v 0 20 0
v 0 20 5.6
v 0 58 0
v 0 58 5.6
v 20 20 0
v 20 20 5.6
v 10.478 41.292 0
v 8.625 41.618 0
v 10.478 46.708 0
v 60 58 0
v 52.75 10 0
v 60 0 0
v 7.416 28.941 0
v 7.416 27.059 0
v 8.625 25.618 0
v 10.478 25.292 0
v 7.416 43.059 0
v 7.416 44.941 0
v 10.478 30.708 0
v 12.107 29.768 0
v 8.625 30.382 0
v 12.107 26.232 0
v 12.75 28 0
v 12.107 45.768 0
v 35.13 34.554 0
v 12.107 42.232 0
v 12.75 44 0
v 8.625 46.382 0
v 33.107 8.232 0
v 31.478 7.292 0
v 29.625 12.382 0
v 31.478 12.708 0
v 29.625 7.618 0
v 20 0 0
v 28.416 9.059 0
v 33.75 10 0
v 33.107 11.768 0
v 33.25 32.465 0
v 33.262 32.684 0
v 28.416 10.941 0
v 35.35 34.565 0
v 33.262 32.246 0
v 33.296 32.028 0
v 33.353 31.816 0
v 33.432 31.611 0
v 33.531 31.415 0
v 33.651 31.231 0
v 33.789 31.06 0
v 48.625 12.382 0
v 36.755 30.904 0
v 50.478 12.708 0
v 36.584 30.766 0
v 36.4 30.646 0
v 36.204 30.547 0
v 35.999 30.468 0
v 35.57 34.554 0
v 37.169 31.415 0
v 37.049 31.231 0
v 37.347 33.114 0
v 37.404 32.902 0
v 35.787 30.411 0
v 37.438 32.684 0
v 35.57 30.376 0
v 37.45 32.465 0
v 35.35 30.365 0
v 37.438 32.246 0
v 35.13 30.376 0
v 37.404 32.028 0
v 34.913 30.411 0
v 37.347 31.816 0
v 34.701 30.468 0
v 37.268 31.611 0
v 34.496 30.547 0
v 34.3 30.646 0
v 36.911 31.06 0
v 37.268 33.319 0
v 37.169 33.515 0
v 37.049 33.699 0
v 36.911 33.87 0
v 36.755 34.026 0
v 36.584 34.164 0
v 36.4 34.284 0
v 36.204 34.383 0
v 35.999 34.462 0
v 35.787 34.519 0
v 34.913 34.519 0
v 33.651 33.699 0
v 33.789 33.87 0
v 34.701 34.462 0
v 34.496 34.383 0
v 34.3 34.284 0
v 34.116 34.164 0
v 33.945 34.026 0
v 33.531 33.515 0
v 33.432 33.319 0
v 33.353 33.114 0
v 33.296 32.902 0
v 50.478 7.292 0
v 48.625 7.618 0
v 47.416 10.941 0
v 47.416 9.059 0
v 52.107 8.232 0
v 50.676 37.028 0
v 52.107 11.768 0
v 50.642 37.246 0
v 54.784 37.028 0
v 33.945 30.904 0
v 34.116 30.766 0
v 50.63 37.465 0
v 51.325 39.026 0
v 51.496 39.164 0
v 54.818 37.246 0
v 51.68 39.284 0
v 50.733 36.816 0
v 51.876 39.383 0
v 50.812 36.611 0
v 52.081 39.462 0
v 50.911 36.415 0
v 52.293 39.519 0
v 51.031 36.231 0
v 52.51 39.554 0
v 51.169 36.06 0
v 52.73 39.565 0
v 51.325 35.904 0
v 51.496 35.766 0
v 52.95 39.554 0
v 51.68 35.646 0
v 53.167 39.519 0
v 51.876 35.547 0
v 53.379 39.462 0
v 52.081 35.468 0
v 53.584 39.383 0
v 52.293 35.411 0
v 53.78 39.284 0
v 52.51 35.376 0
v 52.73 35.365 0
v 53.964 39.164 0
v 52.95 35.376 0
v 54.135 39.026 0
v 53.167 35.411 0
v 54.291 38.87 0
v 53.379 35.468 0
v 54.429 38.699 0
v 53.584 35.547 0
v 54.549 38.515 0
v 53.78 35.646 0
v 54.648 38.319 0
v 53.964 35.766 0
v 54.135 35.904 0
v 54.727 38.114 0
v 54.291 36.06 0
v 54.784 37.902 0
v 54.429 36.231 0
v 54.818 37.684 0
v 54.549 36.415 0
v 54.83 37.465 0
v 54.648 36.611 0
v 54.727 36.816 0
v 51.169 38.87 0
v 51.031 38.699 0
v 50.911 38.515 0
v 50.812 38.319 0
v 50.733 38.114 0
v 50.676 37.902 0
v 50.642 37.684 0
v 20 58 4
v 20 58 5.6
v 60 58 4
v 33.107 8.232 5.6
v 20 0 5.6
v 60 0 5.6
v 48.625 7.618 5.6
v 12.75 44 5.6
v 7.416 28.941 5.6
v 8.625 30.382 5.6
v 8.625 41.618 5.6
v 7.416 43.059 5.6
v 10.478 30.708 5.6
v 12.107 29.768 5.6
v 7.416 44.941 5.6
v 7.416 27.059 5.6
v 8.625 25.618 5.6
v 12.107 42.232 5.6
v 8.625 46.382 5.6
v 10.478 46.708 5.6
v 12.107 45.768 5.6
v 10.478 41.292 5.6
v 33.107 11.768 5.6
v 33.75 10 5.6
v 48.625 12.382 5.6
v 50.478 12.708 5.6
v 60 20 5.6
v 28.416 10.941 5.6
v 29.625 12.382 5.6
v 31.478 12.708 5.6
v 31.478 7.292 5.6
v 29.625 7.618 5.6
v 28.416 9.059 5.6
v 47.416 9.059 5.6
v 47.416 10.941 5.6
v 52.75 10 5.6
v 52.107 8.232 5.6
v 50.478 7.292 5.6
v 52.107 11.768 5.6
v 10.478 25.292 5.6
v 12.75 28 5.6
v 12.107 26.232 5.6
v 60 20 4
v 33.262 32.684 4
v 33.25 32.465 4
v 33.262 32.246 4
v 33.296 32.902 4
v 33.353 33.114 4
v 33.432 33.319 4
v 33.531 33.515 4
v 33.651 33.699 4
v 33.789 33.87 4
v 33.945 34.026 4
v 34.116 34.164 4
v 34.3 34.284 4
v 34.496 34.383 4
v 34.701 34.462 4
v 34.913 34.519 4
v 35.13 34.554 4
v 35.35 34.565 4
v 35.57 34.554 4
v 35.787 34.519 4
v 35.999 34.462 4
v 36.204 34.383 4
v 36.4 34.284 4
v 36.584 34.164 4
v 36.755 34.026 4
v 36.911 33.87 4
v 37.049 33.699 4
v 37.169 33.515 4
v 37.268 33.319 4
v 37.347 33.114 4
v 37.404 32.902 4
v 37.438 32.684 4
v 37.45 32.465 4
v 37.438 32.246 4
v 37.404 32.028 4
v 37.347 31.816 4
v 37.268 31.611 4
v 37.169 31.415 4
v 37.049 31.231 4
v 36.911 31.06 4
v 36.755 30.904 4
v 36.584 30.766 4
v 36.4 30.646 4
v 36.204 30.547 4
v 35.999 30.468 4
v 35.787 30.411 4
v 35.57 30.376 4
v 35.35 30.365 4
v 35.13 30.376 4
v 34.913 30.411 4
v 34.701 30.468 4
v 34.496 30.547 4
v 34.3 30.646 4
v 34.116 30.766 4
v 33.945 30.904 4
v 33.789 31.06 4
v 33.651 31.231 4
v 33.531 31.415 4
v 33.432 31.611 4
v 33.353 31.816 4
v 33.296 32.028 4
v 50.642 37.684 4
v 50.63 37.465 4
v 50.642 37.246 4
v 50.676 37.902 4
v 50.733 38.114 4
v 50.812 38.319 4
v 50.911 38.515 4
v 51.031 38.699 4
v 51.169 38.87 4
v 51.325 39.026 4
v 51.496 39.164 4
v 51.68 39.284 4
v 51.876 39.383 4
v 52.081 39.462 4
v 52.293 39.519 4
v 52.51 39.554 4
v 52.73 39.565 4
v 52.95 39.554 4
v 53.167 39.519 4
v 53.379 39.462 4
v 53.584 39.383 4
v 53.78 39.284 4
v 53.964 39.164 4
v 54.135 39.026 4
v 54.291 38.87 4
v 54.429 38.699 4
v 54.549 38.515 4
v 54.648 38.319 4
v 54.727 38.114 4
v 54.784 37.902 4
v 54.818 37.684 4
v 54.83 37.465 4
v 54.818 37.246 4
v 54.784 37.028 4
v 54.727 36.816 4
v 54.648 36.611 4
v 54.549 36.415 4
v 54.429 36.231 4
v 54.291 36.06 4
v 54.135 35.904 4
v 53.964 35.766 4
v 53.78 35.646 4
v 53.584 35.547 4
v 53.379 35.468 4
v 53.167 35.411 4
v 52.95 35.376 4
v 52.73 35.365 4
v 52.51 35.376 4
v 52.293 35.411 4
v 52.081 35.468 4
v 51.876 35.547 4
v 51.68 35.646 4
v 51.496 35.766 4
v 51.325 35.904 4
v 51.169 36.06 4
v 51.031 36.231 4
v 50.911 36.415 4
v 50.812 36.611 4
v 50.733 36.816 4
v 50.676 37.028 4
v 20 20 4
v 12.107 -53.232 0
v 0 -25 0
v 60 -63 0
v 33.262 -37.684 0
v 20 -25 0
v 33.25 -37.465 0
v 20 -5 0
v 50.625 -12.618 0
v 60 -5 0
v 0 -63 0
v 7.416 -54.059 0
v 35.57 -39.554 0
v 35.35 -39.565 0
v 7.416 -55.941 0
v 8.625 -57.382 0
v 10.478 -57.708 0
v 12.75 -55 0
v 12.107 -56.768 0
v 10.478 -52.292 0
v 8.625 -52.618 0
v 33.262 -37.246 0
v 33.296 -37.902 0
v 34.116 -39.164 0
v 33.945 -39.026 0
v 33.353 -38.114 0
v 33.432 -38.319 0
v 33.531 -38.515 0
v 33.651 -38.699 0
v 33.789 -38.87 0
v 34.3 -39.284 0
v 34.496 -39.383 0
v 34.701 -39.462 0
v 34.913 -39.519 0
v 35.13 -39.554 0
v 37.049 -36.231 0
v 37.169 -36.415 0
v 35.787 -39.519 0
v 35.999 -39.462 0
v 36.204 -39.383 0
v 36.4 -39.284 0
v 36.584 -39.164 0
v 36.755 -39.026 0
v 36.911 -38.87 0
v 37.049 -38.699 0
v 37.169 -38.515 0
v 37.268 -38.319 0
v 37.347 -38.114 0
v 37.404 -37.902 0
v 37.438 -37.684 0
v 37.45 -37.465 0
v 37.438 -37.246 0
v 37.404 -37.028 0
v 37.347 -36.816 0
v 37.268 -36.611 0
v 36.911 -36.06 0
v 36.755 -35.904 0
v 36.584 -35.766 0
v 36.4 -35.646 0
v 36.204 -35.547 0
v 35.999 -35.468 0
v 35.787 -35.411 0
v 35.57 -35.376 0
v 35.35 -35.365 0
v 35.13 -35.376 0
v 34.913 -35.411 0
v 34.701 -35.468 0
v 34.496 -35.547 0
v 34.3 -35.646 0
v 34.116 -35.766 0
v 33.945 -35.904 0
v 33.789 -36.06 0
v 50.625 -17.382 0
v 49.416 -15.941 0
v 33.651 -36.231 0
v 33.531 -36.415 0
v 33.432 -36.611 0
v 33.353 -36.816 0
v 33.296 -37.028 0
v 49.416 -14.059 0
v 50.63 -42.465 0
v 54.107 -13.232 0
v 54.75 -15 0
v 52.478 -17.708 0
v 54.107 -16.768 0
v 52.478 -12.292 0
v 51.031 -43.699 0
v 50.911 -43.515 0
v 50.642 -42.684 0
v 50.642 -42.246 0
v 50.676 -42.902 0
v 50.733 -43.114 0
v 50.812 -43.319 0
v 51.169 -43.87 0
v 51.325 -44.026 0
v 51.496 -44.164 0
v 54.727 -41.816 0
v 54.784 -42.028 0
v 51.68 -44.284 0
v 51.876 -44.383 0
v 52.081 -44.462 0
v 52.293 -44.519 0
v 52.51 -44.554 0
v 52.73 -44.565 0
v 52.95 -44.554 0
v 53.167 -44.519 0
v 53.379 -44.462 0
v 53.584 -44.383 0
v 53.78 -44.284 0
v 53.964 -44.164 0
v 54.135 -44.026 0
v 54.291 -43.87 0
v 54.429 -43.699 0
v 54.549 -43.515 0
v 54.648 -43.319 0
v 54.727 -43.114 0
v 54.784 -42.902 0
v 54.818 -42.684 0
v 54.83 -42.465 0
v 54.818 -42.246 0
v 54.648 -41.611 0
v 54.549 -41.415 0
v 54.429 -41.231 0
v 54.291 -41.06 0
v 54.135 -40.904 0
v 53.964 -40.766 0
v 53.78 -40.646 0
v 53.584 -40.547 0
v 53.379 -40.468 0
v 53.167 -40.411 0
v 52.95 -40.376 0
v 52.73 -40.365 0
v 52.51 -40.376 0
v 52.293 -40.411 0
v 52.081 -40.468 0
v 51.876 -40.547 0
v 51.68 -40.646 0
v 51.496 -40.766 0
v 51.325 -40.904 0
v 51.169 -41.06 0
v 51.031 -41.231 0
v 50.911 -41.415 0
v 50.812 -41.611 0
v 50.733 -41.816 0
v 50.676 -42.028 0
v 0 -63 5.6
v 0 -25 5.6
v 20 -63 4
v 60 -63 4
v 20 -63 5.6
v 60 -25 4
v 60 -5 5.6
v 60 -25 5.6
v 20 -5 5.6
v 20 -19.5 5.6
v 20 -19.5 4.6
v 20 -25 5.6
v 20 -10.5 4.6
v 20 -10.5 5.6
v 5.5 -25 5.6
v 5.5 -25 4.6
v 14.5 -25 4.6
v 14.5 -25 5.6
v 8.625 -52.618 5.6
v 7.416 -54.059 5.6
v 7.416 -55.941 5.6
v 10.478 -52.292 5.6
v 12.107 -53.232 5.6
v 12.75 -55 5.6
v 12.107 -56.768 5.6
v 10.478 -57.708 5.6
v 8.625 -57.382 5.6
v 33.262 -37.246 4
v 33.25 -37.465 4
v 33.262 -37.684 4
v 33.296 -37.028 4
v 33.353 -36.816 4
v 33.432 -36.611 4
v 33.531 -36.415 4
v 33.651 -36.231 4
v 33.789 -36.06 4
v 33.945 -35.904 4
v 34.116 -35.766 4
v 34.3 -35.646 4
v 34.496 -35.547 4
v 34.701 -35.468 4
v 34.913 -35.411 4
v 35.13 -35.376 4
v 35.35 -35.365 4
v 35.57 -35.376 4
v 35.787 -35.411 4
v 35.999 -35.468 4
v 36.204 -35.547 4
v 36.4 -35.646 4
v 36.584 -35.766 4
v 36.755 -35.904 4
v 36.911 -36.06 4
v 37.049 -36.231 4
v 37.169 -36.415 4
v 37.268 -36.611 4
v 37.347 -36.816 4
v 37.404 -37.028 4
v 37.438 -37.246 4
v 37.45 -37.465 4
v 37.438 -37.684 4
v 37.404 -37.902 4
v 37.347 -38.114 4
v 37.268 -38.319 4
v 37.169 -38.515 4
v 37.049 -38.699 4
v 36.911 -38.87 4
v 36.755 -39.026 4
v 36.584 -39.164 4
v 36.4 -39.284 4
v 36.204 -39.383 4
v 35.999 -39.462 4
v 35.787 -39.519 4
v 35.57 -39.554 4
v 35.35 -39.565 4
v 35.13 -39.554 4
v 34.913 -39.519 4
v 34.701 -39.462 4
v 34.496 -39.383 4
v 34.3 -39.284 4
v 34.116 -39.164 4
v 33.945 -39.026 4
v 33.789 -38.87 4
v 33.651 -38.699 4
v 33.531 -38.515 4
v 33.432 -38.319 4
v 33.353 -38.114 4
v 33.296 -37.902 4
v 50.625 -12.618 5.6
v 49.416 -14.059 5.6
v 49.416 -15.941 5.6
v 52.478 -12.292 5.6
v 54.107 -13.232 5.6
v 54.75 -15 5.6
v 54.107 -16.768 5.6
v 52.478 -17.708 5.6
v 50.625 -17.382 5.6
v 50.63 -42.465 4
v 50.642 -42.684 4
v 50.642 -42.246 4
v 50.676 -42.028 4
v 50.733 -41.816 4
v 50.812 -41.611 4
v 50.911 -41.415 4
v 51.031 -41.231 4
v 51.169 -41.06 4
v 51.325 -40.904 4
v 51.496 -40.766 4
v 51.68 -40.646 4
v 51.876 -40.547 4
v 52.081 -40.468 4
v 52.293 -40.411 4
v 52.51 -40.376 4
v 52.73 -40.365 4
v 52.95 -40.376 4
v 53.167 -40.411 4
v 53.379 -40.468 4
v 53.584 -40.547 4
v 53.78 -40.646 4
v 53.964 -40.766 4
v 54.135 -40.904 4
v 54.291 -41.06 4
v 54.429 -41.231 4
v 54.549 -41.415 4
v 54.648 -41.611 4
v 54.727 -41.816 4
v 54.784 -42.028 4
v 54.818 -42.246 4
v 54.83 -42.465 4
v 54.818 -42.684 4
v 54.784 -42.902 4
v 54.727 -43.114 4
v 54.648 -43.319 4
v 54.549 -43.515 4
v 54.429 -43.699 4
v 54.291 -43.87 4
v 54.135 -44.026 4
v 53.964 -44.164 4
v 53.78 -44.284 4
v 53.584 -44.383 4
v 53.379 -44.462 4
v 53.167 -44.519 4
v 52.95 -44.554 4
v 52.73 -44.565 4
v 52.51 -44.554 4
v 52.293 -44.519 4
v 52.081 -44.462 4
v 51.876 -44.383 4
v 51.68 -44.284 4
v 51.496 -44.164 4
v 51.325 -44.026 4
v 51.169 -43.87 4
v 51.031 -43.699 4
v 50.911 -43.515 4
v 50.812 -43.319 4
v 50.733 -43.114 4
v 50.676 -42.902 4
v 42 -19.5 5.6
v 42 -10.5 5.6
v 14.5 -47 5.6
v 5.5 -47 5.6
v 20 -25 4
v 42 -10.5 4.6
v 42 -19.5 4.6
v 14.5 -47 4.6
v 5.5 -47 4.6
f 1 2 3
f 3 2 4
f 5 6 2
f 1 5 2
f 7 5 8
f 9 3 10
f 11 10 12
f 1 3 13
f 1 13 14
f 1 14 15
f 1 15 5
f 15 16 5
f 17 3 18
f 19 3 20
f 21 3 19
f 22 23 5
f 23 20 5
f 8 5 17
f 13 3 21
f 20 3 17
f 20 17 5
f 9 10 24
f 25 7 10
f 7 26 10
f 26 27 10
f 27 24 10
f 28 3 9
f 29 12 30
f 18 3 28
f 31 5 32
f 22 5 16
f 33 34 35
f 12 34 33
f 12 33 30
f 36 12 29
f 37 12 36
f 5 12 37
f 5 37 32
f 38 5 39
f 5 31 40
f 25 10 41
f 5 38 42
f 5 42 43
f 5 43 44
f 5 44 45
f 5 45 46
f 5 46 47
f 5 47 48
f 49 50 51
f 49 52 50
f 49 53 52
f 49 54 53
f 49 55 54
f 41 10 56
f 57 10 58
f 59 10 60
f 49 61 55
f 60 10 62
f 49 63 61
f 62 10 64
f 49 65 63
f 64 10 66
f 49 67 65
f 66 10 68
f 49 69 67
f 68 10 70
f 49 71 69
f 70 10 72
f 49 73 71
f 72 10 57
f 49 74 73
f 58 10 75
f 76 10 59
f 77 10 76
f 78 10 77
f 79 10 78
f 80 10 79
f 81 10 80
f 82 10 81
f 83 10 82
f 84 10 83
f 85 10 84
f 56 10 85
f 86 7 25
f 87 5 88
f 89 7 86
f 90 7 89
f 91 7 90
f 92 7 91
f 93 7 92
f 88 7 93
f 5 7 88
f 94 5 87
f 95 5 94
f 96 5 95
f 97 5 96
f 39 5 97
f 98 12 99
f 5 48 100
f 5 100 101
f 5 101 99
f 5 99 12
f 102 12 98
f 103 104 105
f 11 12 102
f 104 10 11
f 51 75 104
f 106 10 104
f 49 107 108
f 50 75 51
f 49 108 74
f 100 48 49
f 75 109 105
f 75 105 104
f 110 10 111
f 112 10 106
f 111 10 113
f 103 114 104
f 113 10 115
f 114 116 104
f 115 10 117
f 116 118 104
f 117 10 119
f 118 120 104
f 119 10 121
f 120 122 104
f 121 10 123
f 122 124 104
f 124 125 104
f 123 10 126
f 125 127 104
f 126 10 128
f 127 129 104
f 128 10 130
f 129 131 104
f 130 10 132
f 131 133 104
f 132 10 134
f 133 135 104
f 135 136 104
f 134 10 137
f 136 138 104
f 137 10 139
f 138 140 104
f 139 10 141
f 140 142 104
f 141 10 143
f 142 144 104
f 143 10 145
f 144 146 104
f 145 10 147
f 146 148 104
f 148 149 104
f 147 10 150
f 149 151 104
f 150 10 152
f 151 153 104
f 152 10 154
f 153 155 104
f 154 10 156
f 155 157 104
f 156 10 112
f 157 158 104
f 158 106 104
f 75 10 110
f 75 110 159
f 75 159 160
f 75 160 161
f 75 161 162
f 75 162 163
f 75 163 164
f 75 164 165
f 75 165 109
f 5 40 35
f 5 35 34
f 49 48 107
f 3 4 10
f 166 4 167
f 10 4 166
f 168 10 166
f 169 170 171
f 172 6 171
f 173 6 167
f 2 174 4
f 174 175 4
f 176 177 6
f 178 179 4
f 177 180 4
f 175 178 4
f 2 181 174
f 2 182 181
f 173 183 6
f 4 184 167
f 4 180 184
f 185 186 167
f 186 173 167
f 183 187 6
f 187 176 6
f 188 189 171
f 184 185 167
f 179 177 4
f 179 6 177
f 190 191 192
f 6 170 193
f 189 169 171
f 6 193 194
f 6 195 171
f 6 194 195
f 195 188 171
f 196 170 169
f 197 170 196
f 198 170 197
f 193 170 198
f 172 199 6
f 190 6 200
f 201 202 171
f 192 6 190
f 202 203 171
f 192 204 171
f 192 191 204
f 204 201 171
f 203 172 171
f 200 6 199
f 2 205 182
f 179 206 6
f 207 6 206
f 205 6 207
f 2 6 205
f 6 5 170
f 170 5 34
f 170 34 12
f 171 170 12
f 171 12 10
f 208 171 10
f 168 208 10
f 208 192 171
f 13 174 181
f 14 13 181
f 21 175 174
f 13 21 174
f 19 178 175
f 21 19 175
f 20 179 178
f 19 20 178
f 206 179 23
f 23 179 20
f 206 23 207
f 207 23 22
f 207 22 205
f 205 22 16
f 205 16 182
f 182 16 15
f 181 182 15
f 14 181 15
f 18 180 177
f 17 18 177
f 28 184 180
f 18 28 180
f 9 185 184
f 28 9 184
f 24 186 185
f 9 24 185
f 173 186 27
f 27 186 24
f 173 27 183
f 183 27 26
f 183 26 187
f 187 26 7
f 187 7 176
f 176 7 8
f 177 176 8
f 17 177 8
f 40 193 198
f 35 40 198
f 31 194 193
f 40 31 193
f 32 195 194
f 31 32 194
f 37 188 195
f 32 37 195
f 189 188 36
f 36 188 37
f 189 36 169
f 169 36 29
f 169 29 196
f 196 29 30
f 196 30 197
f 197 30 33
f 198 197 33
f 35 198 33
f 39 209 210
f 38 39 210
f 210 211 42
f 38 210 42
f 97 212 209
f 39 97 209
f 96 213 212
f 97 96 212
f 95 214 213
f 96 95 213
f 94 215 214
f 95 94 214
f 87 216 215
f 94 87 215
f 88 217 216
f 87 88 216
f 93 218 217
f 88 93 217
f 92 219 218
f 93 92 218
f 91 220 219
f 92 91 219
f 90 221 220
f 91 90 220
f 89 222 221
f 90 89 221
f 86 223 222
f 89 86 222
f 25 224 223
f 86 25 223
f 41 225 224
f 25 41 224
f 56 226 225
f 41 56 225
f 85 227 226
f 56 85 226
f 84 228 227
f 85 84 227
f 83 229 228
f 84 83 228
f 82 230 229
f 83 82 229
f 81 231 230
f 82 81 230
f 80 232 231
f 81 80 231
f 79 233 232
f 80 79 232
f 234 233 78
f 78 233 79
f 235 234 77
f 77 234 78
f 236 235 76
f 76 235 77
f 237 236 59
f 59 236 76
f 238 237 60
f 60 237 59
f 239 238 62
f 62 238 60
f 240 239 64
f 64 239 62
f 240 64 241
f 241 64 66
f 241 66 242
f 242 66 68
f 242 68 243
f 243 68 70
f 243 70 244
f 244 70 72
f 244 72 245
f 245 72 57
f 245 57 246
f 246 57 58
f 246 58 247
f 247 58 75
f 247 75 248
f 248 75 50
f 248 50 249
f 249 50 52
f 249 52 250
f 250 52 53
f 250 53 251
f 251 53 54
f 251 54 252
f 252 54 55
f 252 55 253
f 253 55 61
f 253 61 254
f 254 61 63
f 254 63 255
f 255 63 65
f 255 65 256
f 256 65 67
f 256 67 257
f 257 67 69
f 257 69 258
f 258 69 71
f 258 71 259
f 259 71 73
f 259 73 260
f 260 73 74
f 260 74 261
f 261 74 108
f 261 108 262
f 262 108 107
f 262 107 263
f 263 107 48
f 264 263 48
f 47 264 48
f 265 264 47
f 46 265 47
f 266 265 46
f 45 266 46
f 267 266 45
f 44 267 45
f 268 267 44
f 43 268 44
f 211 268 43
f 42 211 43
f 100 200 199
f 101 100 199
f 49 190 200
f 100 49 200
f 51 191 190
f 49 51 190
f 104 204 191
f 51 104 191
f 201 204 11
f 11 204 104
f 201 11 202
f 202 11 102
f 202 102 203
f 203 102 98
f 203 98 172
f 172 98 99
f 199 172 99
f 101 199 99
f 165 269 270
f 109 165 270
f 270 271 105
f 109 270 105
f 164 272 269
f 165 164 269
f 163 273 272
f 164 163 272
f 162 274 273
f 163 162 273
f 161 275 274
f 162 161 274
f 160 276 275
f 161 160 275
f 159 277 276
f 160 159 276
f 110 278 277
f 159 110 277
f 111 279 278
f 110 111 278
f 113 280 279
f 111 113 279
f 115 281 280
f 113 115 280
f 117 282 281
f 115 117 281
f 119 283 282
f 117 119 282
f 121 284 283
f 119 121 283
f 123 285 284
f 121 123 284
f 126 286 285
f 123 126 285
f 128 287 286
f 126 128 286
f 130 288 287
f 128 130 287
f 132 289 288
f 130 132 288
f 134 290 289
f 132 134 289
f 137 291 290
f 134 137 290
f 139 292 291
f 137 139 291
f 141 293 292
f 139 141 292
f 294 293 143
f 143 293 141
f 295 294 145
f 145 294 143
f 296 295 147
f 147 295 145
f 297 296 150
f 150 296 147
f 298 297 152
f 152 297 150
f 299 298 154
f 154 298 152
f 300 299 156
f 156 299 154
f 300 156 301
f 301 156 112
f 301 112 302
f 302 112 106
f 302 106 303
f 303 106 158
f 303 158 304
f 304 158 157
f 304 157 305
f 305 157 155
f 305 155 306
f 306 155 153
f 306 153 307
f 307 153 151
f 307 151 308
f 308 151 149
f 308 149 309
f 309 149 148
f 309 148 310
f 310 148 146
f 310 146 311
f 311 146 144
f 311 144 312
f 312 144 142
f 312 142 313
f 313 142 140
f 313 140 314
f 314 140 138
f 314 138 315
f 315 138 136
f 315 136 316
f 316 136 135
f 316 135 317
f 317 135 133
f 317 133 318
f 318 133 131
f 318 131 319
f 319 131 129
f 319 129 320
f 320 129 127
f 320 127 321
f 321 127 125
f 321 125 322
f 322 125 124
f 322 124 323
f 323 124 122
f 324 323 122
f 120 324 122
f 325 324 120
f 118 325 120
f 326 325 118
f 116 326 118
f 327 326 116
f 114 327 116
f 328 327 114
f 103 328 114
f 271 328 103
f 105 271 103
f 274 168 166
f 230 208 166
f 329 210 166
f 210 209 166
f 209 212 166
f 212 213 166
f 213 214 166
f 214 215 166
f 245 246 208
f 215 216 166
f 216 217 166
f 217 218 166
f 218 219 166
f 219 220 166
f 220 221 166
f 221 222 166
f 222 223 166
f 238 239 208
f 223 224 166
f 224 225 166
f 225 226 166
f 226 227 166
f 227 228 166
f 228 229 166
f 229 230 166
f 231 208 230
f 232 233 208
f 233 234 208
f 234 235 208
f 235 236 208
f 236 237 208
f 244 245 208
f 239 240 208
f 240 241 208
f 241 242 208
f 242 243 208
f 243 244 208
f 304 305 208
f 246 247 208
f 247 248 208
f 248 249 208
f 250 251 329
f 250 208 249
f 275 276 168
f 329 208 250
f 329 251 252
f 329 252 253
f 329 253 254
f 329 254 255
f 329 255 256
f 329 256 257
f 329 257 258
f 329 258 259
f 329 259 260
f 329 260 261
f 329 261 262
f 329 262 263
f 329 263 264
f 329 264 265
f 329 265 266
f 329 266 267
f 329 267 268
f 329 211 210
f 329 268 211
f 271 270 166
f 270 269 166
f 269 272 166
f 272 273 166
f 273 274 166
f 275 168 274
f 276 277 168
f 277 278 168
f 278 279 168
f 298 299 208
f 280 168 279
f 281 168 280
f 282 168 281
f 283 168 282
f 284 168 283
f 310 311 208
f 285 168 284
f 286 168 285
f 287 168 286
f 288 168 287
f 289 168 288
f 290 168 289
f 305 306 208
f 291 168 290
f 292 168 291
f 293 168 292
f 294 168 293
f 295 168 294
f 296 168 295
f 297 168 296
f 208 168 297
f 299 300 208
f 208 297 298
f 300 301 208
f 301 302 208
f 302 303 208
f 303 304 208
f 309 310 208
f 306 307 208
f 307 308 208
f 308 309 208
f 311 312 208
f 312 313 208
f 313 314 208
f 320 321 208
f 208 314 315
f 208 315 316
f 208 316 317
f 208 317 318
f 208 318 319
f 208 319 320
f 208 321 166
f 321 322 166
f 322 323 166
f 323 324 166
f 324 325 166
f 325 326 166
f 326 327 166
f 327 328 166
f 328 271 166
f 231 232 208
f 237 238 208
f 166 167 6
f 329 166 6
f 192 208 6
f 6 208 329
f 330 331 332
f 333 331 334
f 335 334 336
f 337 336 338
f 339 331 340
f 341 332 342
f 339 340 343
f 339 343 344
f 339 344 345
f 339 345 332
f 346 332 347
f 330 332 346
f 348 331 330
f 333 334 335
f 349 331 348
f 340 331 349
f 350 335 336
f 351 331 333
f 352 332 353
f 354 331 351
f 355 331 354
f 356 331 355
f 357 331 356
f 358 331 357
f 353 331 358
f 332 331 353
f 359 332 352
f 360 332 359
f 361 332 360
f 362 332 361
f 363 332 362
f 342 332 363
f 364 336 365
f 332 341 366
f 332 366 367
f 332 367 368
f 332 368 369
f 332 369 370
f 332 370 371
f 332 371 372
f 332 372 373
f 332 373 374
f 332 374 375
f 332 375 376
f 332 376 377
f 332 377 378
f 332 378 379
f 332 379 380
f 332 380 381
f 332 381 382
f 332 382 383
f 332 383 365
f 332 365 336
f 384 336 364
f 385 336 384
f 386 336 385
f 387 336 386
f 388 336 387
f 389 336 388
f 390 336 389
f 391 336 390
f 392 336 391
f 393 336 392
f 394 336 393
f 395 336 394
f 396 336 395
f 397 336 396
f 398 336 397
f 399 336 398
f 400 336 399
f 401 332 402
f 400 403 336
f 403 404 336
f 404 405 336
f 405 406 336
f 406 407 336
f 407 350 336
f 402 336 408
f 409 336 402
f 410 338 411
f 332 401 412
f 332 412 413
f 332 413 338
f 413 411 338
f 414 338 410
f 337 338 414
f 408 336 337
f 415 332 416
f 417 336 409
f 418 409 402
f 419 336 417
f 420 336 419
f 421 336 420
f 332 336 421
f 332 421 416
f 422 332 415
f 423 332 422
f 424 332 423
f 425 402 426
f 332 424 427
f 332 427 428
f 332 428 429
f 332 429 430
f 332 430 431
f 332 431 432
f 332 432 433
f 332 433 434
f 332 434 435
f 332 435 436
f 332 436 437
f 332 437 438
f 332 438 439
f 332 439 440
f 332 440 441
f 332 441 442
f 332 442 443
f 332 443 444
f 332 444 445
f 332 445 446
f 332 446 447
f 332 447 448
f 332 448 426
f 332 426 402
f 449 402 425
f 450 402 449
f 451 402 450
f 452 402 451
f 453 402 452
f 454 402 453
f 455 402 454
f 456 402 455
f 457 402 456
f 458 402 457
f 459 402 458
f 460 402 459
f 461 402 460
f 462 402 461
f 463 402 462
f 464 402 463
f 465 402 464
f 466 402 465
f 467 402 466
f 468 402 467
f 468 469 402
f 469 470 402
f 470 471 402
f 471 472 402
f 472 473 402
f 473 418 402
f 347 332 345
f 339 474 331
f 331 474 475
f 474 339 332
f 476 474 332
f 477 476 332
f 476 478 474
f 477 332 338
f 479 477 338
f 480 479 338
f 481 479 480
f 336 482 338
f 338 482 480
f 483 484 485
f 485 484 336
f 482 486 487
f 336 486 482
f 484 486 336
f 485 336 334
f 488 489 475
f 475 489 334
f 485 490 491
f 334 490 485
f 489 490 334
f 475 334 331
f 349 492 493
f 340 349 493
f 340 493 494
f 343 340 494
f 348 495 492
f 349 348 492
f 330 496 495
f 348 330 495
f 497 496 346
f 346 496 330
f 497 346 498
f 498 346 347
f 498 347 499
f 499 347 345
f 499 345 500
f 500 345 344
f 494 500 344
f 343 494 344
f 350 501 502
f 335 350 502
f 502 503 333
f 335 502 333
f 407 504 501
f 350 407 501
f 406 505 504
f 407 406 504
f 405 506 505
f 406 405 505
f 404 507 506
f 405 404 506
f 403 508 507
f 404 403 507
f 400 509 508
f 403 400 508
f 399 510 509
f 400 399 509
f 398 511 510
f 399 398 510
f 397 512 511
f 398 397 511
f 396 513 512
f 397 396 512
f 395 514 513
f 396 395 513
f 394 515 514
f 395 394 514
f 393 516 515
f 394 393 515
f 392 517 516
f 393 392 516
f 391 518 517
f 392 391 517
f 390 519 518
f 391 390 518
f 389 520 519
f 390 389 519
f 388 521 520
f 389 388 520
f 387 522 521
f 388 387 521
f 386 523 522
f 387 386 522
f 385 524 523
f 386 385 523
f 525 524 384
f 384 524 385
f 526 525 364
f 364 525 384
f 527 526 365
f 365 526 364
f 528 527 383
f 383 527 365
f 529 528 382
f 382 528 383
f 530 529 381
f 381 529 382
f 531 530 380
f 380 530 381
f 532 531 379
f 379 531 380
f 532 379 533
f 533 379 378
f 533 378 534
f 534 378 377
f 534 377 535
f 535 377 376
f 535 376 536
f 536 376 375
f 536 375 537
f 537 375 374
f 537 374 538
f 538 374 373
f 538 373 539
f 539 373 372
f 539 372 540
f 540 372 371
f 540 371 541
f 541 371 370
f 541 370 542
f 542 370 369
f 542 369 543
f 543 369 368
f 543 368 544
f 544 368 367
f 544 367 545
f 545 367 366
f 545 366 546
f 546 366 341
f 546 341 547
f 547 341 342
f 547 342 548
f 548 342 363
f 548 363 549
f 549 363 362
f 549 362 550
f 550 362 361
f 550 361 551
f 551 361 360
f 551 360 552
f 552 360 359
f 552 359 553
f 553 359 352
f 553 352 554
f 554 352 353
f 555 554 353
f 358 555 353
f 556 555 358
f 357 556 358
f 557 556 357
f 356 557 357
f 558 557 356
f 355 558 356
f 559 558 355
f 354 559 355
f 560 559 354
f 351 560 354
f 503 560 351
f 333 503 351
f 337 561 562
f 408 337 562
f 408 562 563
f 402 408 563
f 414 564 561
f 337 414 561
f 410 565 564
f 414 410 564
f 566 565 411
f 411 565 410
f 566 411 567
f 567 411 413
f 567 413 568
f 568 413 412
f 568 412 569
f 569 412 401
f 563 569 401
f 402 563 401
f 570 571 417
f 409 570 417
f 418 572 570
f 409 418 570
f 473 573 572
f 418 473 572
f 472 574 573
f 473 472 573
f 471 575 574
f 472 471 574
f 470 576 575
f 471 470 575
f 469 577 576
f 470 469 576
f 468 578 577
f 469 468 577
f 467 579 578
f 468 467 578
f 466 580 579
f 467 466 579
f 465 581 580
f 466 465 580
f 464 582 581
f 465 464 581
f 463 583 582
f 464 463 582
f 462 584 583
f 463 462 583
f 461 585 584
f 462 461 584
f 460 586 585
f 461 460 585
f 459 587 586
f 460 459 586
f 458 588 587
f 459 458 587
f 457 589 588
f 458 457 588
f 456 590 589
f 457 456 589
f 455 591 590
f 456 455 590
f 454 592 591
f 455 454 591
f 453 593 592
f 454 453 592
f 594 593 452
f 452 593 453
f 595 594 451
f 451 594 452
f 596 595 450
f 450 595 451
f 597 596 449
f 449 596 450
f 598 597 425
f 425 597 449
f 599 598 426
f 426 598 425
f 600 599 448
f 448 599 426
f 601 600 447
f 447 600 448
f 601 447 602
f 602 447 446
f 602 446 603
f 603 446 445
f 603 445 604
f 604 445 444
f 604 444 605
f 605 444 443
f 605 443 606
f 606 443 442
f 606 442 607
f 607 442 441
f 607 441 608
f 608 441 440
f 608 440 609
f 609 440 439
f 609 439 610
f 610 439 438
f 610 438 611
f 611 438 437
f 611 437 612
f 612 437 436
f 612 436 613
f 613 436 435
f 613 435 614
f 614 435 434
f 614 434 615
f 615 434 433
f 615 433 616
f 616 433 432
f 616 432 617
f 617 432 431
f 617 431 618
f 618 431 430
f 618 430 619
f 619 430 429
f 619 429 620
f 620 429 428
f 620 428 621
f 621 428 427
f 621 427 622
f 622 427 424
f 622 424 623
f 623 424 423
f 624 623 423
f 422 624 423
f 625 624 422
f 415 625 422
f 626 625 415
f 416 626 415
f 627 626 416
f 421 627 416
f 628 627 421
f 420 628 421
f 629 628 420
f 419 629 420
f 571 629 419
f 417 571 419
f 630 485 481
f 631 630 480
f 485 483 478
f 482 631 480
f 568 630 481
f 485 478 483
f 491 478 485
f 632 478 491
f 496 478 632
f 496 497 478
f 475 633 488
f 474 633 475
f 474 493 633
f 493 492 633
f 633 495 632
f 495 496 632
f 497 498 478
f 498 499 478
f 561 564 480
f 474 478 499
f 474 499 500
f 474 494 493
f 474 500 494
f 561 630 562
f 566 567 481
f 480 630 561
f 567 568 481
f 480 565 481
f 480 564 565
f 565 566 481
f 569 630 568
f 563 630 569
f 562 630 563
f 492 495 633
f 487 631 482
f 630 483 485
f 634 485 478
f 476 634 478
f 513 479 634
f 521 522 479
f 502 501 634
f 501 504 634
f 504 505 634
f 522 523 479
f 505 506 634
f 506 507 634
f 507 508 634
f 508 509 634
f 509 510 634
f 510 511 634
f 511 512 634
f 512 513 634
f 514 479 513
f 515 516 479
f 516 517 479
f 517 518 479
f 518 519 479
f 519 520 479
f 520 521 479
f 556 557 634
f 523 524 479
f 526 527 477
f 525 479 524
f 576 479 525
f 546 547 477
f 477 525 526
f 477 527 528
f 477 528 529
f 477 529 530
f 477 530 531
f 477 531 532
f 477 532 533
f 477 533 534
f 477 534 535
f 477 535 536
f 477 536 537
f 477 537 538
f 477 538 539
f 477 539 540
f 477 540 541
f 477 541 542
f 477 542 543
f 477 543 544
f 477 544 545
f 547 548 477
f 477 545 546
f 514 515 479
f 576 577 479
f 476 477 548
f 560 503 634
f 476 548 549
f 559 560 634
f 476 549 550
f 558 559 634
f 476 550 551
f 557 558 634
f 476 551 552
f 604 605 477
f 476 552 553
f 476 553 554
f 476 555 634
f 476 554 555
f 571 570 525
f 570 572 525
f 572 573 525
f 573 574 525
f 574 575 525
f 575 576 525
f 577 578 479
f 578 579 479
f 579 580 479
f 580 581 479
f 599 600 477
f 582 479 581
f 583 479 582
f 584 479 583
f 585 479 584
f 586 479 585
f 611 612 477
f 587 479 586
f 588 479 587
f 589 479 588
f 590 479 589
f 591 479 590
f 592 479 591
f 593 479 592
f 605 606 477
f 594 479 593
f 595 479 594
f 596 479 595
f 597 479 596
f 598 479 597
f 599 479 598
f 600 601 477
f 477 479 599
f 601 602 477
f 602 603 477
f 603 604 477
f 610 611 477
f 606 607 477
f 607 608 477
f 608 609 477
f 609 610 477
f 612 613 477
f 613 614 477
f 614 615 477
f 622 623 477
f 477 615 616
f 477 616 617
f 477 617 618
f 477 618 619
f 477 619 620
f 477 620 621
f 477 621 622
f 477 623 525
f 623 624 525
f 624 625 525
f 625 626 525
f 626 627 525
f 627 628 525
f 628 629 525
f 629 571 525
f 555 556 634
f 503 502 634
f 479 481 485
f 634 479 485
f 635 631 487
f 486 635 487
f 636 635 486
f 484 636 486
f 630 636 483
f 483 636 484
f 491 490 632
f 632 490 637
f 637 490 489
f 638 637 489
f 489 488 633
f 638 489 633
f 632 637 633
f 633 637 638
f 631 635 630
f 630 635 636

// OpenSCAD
// file: library.scad
//rounded cube Functions from: http://www.thingiverse.com/thing:38069


module cube_fillet(size,radius=-1,vertical,top,bottom,center=false,$fn=0){
    if (center) {
        cube_fillet_inside(size, radius, vertical, top, bottom, $fn=$fn);
    } else {
        translate([size[0]/2, size[1]/2, size[2]/2])
            cube_fillet_inside(size, radius, vertical, top, bottom, $fn=$fn);
    }
}
module fillet(radius, height=100, $fn=60) {  
    //this creates negative of fillet,
    //i.e. thing to be substracted from object
    translate([-radius, -radius, -height/2-0.01])
        difference() {
            cube([radius*2, radius*2, height+0.02]);
            cylinder(r=radius, h=height+0.02, $fn=$fn);
        }
}

module cube_negative_fillet(size,radius=-1,vertical, top,bottom,$fn=0){
    j=[1,0,1,0];

    for (i=[0:3]) {
        if (radius > -1) {
            rotate([0, 0, 90*i])
                translate([size[1-j[i]]/2, size[j[i]]/2, 0])
                    fillet(radius, size[2], $fn=$fn);
        } else {
            rotate([0, 0, 90*i])
                translate([size[1-j[i]]/2, size[j[i]]/2, 0])
                    fillet(vertical[i], size[2], $fn=$fn);

        }
        rotate([90*i, -90, 0])
            translate([size[2]/2, size[j[i]]/2, 0 ])
                fillet(top[i], size[1-j[i]], $fn=$fn);
        rotate([90*(4-i), 90, 0])
            translate([size[2]/2, size[j[i]]/2, 0])
                fillet(bottom[i], size[1-j[i]], $fn=$fn);
    }
}

module cube_fillet_inside(size,radius=-1,vertical,top,bottom,$fn=0){

    if (radius == 0) {
        cube(size, center=true);
    } else {
        difference() {
            cube(size, center=true);
            cube_negative_fillet(size, radius, vertical, top, bottom, $fn=$fn);
        }
    }
}
// file: dimensions.scad
// Dimensions
// Author: sdavi


LM8UU = [8, 15, 24];//rod diameter,outter diameter, length
LM12UU = [12, 21, 30];
LM12LUU = [12, 21, 57];
LM12UUx2 = [LM12UU[0], LM12UU[1], LM12UU[2]*2];

BEARING_624 = [4,13,5]; //inner diameter(hole), outter diameter, thickness (http://reprap.org/wiki/Ball_bearing)
BEARING_2x624 = [4, 13, 10]; // 2 624 bearings together, good size for GT2

BEARING_6300 = [10,35,11]; //inner diameter, outer diameter, thickness

vslot_wheel = [23.89,10.23];	//23.89 & 10.23
vslot_wheel_hole = 5+0.5;
vslot_wheel_eccentric = 7.2+0.5; //hole for eccentric spacer
vslot_wheel_spacer_length = 6.35;


t_nut_length = 15+1; //hole in center 1mm cleanance incase hole isnt actually center




GT2_belt_width = 6;
GT2_belt_pitch = 2;
GT2_belt_thickness = 1.38;
GT2_belt_tooth_height = 0.75;  
GT2_belt_tooth_ratio = 0.5;



GT2_pulley_geared_diameter=12.2;//measured from top of tooth to top of tooth opp side// 12.2 is for the 20 tooth pulley

//from metric (prusa i3)
m4_diameter = 4.6;
m4_nut_diameter = 7.6;
m4_nut_diameter_horizontal = 8.15;

m3_diameter = 3.6;
m3_nut_diameter = 5.3;
m3_nut_diameter_horizontal = 6.8;
m3_washer_diameter = 6.9;
//end i3 variables

m5_diameter = 5.5;

//Hex Head M3x30: Head 5.5mm flat to flat, 2.12mm thick
m3_hex_head_diameter = 5.5*2/sqrt(3) + 0.2;

M4 = m4_diameter;
M3 = m3_diameter;
M5 = m5_diameter;
m4_washer_thickness = 0.8; //flat and penny washers
m4_washer_diameter = 9.6;

nema17_holes = 31;// mm between screws
nema17_width = 42; //width
nema17_height = 48;
// file: configuration.scad
// Configuration
// Author: sdavi


include <dimensions.scad>
use <library.scad>


x_rod_distance = 45;

y_bearing = LM8UU;
x_bearing = LM8UU;
//z_bearing = LM12UUx2;
z_bearing = LM12LUU;
belt_bearing = BEARING_2x624;


end_belt_bearing_distance = 25;// distance between 2 bearings on y-ends
belt_clearance = 9.5; //space for belts
x_belt_clearance = 5; //spacing between x-axis vslot and belt

frame_screw = M5; //m5 screws for v/tslot

// calculated vars


//y bearing block
y_bearing_block_length = 2*y_bearing[2] + M3*2 + 5;
//y_bearing_block_width = y_bearing[1]+5;
y_bearing_block_width = 20; //vslot frame width

y_bearing_block_height = 6+y_bearing[1]/2;

//xy_bearing_distance = y_bearing_block_width/2+belt_clearance+belt_bearing[1]/2; //distance between center of y-bearing to center of x-belt bearing 
xy_bearing_distance = vslot_wheel[1]/2+vslot_wheel_spacer_length+belt_clearance+belt_bearing[1]/2; //distance between center of v_slot to center of x-belt bearing 




//min height for belt bearings
min_beltbearing_height = max(((belt_bearing[2]+m4_washer_thickness*2) * 2), y_bearing_block_height);
// file: lib/y_idler_ends.scad
// y_idler ends 
// Author: sdavi


//Idler Ends BoM
//16x M5x8mm bolt
//4x M4x??m Bolt + nut
//8x M4 washer
//8x F624ZZ bearing

include <../configuration.scad>
include <../dimensions.scad>

//use <y_motor_end.scad>




im_using_hidden_corner_connectors = 1; // if using hidden corner connectors
hcc=[9,22,1]; //to avoid hidden corner connectors;

//add extra lenths if using hidden corner conenctors
extra_l=max(t_nut_length+im_using_hidden_corner_connectors*(hcc[1]), t_nut_length*2); 
extra_w = max(40, im_using_hidden_corner_connectors*(hcc[1])+t_nut_length);

y_block_length = 20+extra_l;//big enough to hold 2 frame screws
y_block_width = 20+extra_w; 
y_block_height = 4;

y_block_total_height = 4+4+min_beltbearing_height;


echo("block length:", y_block_length);
echo("block width:", y_block_width);
echo("block height:", y_block_height);

echo("Total Height:", y_block_height*2+min_beltbearing_height);





//y_idler_ends_print();
//%motor_mount();
//y_motor_end_idler();

//%illustration();
//support();



module y_idler_ends_print(){
	difference(){
		//bottom
		y_motor_end_idler();
		translate([0,0,y_block_total_height-9.9])cube([y_block_width, y_block_length, 10]);
	
	}
	
	translate([0,-5,y_block_total_height])rotate([180,0,0])intersection(){
		y_motor_end_idler();
		translate([0,0,y_block_total_height-9.9])cube([y_block_width, y_block_length, 10]);
	
	}
}













//calculate positions for bearings

inner_bearing_pos = [	nema17_width/2+20+GT2_pulley_geared_diameter/2+(GT2_belt_thickness-GT2_belt_tooth_height)+belt_bearing[2]/2, 
						y_bearing_block_width/2+xy_bearing_distance,
						0];

outer_bearing_pos = [	inner_bearing_pos[0]-belt_bearing[2]-GT2_belt_thickness-6, 
							inner_bearing_pos[1]-5, 
							0 ];







module y_motor_end_idler(){
	difference(){
		cube([y_block_width, y_block_length,y_block_total_height]);

		//remove for frame corner
		translate([-0.1, -0.1, -0.1])cube([20.1, 20.1, y_block_total_height+0.2]);
		//remove frame lengths
		translate([0,-0.1,y_block_total_height/2-20/2]) cube([y_block_width+0.1, 20.2, 20]);
		translate([-0.1,-0.1,y_block_total_height/2-20/2]) cube([20.2, y_block_length+0.2, 20]);
		
		//belt area

		translate([20,20,y_block_total_height/2-min_beltbearing_height/2]) 
			cube([y_block_width-20+0.1, y_block_length-20+0.1, min_beltbearing_height]);


		bearing_holes();

		//frame screws

		if(im_using_hidden_corner_connectors==0){
			translate([10,20+t_nut_length/2,-0.1]) 
				cylinder(d=frame_screw, h=y_block_total_height+0.2);
			translate([10,20+t_nut_length+t_nut_length/2,-0.1]) 
				cylinder(d=frame_screw, h=y_block_total_height+0.2);
		
			translate([20+t_nut_length/2+3,10,-0.1]) 
				cylinder(d=frame_screw, h=y_block_total_height+0.2);
			translate([20+t_nut_length+t_nut_length/2+6,10,-0.1]) 
				cylinder(d=frame_screw, h=y_block_total_height+0.2);

		} else {
			//hidden corner connectors get in the way, avoid them
//hcc=[9,22,1]; //to avoid hidden connectors;

			//top, has hidden conenctors
			translate([10,y_block_length-t_nut_length/2,y_block_total_height/2]) 
				cylinder(d=frame_screw, h=y_block_total_height/2+0.1);
			translate([y_block_width-t_nut_length/2,10,y_block_total_height/2]) 
				cylinder(d=frame_screw, h=y_block_total_height/2+0.1);

			//make cutout for hidden connector so sits flush
			translate([20-0.1, 20/2-hcc[0]/2, y_block_total_height/2+20/2-0.1])
				cube([hcc[1]+0.1, hcc[0], hcc[2]+0.1]);
			translate([20/2-hcc[0]/2, 20-0.1, y_block_total_height/2+20/2-0.1])
				cube([hcc[0], hcc[1]+0.1, hcc[2]+0.1]);


			//bottom
			translate([10,20+t_nut_length/2,-0.1]) 
				cylinder(d=frame_screw, h=y_block_total_height/2);
			translate([10,20+t_nut_length+t_nut_length/2,-0.1]) 
				cylinder(d=frame_screw, h=y_block_total_height/2);
		
			translate([20+t_nut_length/2+3,10,-0.1]) 
				cylinder(d=frame_screw, h=y_block_total_height/2);
			translate([20+t_nut_length+t_nut_length/2+6,10,-0.1]) 
				cylinder(d=frame_screw, h=y_block_total_height/2);

			
		}



	}
}


module bearing_holes(){
	//belt bearing holes

	//bearing inner
	translate(inner_bearing_pos)  translate([0,0,-0.1])cylinder(d=belt_bearing[0]+0.2, h=y_block_total_height+0.2, $fn=60);
	//bearing outer
	translate(outer_bearing_pos) translate([0,0,-0.1])  cylinder(d=belt_bearing[0]+0.2, h=y_block_total_height+0.2, $fn=60);
	//bearing outer padding space
	translate(outer_bearing_pos) translate([0,0,y_block_height]) cylinder(d=belt_bearing[1]*1.8, h=min_beltbearing_height, $fn=30);

	
	

}

module illustration(){
		visualise_high = 0; //high (1) or low bearing (0)

//frames
			%color("grey")translate([0,0,-20]) 
				cube([20,20,70]);
			%color("grey")%translate([0,0,y_block_total_height/2-10]) cube([100, 20,20]);
			%color("grey")%translate([0,0,y_block_total_height/2-10]) cube([20,150, 20]);

//bearings
	
		%color("green")translate(inner_bearing_pos)
			translate([0,0,y_block_total_height/2-10+m4_washer_thickness]){ 
				if( visualise_high == 0){
					cylinder(d=belt_bearing[1], h=belt_bearing[2], $fn=60); //bottom
				} else {

					translate([0,0,belt_bearing[2]+m4_washer_thickness*2])
						cylinder(d=belt_bearing[1], h=belt_bearing[2], $fn=60); //top
				}
			}

		%color("green")translate(outer_bearing_pos)
			translate([0,0,y_block_total_height/2-10+m4_washer_thickness]) {
					
				if(visualise_high == 0){
					cylinder(d=belt_bearing[1], h=belt_bearing[2], $fn=60);//bottom	

				} else {
					translate([0,0,belt_bearing[2]+m4_washer_thickness*2])
						cylinder(d=belt_bearing[1], h=belt_bearing[2], $fn=60); //top				
				}

			}

//nema17
		%color("yellow") rotate([0,180,0])
			translate([	-nema17_width/2-20,
							nema17_width/2+20+50,
							-(min_beltbearing_height+y_block_height*2)-46]) 
			nema17();	
			
		%translate([nema17_width/2+20,nema17_width/2+20+50,y_block_height+m4_washer_thickness+belt_bearing[2]/2 + visualise_high*(belt_bearing[2]+m4_washer_thickness*2)])
			pulley(bottom=visualise_high);

//belts
		%color("DimGray") translate(inner_bearing_pos) 
			translate([-belt_bearing[2]/2-GT2_belt_thickness,0,y_block_height+m4_washer_thickness+belt_bearing[2]/2-GT2_belt_width/2 +visualise_high*(belt_bearing[2]+m4_washer_thickness*2)]) cube([GT2_belt_thickness, 50, GT2_belt_width]);
		

	//rod holder 
	//%color("red")translate([20,0,y_block_height*2+min_beltbearing_height+frame_spacer_height])mirror([0,0,1])y_rod_holder();

}



//modle of nema17 for illustration
module nema17(){


	union(){
		translate([-nema17_width/2, -nema17_width/2, 0])
			cube_fillet([nema17_width, nema17_width, nema17_height], vertical=[3,3,3,3]);
		translate([0,0,48]) {
			cylinder(d=22, h=2, $fn=60); //rasied center bit
			cylinder(d=5, h=22+2, $fn=60); //shaft
		}

		

	
	}
	


}


//pulley bottom = 1 or 0
module pulley(bottom = 1){
		//pulley GT2 20 tooth
		//pulley height = 16, diameter = 16, bottom=1mm, top=7+0.5;


		rotate([0,bottom*180,0])translate([0,0,-1-(16-7.5-1)/2]){
			color("orange")  cylinder(d=16, h=1, $fn=60);
			color("orange") translate([0,0,16-7.5]) cylinder(d=16, h=7.5, $fn=60);	
			color("yellow") translate([0,0,1]) cylinder(d=12.2, h=16-1-7.5, $fn=60);
		}
}
// main file
// y_idler end
// Author: sdavi

include <lib/y_idler_ends.scad>

im_using_hidden_corner_connectors = 1; // if using hidden corner connectors
y_idler_ends_print();
